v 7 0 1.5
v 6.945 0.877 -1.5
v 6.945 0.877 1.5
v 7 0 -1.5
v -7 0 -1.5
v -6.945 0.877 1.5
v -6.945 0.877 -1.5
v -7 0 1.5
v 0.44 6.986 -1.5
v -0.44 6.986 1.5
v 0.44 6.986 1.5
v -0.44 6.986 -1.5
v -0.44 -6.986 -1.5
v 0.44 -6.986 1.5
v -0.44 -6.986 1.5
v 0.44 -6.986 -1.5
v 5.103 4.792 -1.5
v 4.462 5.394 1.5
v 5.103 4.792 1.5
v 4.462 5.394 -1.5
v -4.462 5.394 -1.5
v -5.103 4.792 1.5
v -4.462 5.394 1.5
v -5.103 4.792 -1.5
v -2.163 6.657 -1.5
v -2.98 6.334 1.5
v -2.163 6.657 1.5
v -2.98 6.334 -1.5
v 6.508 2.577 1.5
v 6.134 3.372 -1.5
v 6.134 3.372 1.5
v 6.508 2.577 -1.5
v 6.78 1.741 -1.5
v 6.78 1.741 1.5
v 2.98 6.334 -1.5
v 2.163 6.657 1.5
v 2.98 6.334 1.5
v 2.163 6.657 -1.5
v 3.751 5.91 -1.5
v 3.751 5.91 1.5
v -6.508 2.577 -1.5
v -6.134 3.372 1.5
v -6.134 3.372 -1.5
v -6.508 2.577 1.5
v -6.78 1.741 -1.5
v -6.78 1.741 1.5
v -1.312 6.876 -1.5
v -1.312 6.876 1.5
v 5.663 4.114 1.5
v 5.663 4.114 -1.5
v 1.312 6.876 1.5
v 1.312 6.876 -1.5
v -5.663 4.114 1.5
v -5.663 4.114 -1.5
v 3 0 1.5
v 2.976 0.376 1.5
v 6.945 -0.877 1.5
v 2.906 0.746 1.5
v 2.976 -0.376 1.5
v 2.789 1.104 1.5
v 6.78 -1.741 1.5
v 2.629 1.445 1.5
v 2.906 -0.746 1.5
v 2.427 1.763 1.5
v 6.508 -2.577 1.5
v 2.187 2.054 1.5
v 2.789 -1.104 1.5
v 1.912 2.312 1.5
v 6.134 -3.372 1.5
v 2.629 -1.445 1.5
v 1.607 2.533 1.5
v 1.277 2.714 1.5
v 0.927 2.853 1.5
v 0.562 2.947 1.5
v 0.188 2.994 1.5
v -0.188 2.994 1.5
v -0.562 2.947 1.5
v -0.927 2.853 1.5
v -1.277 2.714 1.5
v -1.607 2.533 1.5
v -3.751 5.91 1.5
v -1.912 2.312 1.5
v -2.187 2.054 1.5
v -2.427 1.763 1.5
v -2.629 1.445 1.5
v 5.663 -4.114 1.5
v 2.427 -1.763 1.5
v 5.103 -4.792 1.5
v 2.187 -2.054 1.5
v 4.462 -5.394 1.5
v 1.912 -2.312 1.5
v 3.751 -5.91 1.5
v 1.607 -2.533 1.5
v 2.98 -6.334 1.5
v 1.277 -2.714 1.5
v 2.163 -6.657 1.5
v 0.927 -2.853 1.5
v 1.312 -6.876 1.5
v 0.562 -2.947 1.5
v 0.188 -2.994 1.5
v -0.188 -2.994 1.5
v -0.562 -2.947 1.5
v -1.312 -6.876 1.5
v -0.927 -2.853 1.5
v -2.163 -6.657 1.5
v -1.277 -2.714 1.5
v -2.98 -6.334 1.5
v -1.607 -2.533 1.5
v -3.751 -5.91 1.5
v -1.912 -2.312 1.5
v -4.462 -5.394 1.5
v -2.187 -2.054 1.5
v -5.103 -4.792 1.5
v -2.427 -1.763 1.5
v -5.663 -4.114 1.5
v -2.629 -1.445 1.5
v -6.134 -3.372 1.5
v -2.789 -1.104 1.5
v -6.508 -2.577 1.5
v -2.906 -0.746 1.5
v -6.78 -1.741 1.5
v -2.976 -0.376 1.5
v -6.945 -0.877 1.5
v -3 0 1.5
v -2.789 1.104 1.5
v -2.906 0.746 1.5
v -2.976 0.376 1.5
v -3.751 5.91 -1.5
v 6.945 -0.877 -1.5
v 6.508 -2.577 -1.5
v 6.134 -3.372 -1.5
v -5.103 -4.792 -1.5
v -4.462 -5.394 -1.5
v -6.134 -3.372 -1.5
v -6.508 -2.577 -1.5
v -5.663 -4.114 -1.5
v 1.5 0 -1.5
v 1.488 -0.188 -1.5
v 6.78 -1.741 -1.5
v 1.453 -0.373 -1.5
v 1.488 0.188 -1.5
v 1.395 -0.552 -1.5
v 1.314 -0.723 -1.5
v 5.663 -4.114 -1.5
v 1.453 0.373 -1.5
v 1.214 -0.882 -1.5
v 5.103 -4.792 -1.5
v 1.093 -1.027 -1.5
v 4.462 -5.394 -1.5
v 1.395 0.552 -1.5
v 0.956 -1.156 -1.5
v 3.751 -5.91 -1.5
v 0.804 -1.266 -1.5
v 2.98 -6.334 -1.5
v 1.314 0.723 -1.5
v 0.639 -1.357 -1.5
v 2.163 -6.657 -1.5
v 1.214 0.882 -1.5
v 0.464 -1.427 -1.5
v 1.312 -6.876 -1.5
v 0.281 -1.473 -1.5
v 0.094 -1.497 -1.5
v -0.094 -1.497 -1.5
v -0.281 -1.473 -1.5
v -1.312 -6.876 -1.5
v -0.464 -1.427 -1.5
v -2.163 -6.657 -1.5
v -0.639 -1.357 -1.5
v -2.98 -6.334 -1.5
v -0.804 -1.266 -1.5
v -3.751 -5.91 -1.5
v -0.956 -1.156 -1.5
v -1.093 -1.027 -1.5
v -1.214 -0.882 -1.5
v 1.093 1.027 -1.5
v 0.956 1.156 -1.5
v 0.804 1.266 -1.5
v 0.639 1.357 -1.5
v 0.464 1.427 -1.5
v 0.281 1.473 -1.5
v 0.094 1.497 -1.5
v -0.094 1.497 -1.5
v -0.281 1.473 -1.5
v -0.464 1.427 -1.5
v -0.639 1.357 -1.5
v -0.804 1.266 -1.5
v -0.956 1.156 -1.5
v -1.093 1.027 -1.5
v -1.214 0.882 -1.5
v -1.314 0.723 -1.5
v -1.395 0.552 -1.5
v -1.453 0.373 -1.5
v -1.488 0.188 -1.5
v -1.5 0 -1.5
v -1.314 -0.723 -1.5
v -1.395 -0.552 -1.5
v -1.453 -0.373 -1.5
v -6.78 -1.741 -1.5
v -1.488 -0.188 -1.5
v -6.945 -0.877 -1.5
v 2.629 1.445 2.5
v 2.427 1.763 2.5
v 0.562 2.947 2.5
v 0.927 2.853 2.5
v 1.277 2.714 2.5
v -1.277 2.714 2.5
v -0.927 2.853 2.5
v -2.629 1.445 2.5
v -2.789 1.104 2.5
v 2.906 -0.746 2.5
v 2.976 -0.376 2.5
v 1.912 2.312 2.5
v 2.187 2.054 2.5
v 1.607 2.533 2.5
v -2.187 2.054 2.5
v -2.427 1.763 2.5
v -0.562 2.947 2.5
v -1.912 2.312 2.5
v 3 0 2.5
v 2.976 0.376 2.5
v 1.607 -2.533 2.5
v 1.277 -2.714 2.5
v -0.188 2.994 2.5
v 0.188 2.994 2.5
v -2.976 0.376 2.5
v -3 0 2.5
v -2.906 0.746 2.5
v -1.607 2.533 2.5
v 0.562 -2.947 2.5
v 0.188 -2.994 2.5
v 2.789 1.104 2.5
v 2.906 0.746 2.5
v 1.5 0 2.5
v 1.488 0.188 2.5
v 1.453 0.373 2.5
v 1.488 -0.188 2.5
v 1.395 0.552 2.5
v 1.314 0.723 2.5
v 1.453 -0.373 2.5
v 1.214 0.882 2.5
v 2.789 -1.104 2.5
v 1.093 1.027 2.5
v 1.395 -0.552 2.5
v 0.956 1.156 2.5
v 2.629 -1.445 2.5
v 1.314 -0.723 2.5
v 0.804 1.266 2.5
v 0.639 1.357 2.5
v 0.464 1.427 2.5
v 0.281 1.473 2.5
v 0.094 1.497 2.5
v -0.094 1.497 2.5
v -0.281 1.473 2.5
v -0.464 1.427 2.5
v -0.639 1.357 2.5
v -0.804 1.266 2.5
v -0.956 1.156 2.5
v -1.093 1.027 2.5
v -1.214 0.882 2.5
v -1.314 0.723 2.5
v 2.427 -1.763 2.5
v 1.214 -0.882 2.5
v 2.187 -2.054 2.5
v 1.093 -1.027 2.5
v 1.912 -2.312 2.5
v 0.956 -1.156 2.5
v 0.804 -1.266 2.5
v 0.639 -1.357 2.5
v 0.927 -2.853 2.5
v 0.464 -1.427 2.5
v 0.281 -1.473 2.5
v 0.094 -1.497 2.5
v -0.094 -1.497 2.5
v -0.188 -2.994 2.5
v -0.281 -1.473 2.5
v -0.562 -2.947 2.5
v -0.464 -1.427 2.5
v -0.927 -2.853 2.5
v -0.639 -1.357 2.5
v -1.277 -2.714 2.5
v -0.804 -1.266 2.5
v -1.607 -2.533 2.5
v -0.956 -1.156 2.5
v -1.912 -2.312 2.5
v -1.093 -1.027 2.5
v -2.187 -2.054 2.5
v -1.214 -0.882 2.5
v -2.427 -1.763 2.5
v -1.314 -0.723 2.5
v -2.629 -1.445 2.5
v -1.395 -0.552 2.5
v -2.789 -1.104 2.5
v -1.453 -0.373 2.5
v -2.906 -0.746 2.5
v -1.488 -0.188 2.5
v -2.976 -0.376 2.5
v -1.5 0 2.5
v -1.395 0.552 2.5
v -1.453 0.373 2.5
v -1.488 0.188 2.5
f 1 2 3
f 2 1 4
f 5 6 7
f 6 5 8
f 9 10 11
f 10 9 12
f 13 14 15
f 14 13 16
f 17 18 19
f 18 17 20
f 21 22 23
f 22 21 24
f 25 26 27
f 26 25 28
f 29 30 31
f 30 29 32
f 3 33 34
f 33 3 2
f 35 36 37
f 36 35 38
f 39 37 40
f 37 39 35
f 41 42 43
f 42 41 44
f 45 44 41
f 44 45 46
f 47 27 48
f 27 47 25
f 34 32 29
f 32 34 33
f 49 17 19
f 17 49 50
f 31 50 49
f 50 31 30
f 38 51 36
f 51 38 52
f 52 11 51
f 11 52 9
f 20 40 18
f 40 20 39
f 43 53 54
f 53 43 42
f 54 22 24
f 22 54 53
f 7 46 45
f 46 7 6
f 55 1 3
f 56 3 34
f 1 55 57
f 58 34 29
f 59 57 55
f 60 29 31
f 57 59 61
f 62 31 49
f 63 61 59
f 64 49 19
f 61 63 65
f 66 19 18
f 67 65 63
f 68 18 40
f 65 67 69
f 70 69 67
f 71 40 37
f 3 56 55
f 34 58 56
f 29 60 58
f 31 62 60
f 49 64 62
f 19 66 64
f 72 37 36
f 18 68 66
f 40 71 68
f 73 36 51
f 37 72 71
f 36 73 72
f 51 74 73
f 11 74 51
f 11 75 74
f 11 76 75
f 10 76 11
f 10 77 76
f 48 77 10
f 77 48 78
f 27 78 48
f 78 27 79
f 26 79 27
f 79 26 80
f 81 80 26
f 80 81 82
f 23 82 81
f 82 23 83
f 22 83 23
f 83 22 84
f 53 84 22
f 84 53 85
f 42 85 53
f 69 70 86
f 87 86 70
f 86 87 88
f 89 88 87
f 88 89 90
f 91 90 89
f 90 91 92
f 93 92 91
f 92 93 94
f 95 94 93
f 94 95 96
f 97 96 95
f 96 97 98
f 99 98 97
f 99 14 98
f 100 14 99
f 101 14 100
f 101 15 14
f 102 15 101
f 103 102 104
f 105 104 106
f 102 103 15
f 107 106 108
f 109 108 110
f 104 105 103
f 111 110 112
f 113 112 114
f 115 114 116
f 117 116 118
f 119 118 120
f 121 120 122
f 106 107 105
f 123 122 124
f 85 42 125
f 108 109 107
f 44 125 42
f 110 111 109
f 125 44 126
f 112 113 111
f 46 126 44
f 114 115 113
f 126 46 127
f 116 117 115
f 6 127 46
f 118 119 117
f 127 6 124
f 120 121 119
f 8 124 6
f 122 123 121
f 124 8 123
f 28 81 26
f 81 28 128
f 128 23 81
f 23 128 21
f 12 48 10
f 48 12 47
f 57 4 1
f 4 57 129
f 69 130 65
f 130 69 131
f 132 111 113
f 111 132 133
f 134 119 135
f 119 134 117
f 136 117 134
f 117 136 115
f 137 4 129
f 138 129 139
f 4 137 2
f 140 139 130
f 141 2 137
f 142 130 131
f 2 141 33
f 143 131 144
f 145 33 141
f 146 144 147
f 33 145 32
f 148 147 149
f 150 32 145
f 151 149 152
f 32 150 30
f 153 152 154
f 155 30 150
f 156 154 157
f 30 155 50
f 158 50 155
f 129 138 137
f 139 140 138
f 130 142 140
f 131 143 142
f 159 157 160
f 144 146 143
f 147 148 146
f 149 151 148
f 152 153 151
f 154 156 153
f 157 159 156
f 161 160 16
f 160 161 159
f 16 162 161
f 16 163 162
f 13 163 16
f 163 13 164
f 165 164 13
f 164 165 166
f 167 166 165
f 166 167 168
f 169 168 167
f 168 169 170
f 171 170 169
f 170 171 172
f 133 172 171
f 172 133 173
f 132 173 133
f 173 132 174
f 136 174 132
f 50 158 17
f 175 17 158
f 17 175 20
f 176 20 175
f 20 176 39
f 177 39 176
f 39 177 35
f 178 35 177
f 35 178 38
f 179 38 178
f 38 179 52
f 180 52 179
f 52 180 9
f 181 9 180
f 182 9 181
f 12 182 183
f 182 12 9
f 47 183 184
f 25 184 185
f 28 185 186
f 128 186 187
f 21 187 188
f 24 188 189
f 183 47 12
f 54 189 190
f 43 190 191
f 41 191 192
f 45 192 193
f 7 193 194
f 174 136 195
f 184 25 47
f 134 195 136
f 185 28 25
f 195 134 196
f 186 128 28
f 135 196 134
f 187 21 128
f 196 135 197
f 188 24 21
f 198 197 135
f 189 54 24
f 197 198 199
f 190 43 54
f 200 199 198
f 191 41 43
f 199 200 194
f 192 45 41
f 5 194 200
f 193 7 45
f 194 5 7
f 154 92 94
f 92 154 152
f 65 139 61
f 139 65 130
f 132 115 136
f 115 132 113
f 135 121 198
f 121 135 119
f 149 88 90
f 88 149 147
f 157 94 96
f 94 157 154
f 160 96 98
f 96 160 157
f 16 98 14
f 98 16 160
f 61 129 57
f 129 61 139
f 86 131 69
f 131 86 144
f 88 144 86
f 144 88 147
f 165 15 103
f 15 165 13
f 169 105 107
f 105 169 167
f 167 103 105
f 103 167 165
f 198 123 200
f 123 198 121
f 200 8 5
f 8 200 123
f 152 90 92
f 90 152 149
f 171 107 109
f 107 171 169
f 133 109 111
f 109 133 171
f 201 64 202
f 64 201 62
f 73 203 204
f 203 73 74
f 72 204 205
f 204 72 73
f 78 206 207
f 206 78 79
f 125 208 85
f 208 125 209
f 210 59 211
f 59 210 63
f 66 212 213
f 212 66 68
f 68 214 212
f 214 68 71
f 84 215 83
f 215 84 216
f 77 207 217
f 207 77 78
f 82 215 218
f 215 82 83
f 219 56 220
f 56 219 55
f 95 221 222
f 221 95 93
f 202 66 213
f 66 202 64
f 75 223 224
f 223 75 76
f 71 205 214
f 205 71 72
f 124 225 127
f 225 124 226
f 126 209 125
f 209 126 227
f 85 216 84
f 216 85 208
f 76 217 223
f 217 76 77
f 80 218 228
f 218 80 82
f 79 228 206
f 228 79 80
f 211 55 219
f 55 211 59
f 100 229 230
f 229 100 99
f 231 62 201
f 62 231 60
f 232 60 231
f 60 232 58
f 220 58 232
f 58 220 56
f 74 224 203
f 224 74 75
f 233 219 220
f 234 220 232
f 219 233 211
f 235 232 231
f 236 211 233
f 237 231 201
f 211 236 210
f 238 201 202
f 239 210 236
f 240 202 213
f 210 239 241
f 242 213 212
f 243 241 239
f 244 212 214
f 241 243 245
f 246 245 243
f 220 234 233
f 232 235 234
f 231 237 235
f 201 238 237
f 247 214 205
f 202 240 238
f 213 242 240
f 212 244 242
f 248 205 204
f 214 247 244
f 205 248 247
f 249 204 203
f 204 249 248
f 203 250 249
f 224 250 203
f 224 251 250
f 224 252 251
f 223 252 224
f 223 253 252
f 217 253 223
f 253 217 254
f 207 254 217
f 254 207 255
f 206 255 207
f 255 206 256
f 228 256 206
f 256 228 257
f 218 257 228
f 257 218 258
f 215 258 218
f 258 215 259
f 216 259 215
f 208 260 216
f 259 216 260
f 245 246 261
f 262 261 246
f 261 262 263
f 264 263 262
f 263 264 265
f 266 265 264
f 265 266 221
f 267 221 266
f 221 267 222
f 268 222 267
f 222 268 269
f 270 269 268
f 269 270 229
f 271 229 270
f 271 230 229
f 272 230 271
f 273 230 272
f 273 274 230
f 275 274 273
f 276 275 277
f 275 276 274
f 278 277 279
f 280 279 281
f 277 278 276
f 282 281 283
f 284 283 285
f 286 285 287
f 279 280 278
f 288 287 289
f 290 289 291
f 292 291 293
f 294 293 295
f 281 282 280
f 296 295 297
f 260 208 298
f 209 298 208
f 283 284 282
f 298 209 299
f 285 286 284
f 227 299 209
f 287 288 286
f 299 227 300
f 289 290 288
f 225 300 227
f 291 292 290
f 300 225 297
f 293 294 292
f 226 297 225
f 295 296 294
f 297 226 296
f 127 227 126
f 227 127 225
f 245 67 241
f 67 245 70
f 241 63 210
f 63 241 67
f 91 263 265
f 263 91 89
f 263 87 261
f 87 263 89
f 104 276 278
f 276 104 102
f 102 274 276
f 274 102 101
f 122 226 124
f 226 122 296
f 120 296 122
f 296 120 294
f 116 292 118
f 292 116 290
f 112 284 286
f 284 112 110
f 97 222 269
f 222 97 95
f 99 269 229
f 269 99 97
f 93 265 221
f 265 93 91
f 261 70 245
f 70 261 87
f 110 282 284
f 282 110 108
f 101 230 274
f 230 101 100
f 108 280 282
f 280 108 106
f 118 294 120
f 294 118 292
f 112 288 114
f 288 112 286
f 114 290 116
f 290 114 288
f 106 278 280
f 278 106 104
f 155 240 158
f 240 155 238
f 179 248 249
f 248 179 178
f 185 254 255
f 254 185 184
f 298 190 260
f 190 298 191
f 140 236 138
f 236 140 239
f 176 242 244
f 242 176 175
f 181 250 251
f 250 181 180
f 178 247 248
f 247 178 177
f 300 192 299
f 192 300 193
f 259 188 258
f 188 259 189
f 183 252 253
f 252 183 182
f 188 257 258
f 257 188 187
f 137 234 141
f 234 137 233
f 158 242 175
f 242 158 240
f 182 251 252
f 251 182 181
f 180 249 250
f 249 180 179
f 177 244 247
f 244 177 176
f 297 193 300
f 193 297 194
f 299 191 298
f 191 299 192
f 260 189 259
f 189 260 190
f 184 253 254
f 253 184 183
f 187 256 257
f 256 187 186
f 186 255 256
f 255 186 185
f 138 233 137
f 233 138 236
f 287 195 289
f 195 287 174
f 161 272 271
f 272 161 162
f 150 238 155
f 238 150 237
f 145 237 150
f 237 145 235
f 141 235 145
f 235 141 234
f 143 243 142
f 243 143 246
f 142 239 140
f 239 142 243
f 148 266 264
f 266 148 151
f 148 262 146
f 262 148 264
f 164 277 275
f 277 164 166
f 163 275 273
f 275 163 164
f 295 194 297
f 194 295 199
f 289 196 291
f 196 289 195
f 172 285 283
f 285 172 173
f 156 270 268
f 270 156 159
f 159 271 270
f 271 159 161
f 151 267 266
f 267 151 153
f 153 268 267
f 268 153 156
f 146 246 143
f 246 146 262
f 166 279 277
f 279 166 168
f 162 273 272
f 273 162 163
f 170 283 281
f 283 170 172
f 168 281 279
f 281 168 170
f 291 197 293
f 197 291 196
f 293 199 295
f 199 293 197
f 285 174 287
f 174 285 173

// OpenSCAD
$fn = 50;


difference() {
	union() {
		translate(v = [0, 0, -1.5000000000]) {
			cylinder(h = 3, r = 7.0000000000);
		}
		translate(v = [0, 0, -1.5000000000]) {
			cylinder(h = 4, r = 3.0000000000);
		}
	}
	union() {
		translate(v = [0, 0, -50.0000000000]) {
			cylinder(h = 100, r = 1.5000000000);
		}
	}
}
